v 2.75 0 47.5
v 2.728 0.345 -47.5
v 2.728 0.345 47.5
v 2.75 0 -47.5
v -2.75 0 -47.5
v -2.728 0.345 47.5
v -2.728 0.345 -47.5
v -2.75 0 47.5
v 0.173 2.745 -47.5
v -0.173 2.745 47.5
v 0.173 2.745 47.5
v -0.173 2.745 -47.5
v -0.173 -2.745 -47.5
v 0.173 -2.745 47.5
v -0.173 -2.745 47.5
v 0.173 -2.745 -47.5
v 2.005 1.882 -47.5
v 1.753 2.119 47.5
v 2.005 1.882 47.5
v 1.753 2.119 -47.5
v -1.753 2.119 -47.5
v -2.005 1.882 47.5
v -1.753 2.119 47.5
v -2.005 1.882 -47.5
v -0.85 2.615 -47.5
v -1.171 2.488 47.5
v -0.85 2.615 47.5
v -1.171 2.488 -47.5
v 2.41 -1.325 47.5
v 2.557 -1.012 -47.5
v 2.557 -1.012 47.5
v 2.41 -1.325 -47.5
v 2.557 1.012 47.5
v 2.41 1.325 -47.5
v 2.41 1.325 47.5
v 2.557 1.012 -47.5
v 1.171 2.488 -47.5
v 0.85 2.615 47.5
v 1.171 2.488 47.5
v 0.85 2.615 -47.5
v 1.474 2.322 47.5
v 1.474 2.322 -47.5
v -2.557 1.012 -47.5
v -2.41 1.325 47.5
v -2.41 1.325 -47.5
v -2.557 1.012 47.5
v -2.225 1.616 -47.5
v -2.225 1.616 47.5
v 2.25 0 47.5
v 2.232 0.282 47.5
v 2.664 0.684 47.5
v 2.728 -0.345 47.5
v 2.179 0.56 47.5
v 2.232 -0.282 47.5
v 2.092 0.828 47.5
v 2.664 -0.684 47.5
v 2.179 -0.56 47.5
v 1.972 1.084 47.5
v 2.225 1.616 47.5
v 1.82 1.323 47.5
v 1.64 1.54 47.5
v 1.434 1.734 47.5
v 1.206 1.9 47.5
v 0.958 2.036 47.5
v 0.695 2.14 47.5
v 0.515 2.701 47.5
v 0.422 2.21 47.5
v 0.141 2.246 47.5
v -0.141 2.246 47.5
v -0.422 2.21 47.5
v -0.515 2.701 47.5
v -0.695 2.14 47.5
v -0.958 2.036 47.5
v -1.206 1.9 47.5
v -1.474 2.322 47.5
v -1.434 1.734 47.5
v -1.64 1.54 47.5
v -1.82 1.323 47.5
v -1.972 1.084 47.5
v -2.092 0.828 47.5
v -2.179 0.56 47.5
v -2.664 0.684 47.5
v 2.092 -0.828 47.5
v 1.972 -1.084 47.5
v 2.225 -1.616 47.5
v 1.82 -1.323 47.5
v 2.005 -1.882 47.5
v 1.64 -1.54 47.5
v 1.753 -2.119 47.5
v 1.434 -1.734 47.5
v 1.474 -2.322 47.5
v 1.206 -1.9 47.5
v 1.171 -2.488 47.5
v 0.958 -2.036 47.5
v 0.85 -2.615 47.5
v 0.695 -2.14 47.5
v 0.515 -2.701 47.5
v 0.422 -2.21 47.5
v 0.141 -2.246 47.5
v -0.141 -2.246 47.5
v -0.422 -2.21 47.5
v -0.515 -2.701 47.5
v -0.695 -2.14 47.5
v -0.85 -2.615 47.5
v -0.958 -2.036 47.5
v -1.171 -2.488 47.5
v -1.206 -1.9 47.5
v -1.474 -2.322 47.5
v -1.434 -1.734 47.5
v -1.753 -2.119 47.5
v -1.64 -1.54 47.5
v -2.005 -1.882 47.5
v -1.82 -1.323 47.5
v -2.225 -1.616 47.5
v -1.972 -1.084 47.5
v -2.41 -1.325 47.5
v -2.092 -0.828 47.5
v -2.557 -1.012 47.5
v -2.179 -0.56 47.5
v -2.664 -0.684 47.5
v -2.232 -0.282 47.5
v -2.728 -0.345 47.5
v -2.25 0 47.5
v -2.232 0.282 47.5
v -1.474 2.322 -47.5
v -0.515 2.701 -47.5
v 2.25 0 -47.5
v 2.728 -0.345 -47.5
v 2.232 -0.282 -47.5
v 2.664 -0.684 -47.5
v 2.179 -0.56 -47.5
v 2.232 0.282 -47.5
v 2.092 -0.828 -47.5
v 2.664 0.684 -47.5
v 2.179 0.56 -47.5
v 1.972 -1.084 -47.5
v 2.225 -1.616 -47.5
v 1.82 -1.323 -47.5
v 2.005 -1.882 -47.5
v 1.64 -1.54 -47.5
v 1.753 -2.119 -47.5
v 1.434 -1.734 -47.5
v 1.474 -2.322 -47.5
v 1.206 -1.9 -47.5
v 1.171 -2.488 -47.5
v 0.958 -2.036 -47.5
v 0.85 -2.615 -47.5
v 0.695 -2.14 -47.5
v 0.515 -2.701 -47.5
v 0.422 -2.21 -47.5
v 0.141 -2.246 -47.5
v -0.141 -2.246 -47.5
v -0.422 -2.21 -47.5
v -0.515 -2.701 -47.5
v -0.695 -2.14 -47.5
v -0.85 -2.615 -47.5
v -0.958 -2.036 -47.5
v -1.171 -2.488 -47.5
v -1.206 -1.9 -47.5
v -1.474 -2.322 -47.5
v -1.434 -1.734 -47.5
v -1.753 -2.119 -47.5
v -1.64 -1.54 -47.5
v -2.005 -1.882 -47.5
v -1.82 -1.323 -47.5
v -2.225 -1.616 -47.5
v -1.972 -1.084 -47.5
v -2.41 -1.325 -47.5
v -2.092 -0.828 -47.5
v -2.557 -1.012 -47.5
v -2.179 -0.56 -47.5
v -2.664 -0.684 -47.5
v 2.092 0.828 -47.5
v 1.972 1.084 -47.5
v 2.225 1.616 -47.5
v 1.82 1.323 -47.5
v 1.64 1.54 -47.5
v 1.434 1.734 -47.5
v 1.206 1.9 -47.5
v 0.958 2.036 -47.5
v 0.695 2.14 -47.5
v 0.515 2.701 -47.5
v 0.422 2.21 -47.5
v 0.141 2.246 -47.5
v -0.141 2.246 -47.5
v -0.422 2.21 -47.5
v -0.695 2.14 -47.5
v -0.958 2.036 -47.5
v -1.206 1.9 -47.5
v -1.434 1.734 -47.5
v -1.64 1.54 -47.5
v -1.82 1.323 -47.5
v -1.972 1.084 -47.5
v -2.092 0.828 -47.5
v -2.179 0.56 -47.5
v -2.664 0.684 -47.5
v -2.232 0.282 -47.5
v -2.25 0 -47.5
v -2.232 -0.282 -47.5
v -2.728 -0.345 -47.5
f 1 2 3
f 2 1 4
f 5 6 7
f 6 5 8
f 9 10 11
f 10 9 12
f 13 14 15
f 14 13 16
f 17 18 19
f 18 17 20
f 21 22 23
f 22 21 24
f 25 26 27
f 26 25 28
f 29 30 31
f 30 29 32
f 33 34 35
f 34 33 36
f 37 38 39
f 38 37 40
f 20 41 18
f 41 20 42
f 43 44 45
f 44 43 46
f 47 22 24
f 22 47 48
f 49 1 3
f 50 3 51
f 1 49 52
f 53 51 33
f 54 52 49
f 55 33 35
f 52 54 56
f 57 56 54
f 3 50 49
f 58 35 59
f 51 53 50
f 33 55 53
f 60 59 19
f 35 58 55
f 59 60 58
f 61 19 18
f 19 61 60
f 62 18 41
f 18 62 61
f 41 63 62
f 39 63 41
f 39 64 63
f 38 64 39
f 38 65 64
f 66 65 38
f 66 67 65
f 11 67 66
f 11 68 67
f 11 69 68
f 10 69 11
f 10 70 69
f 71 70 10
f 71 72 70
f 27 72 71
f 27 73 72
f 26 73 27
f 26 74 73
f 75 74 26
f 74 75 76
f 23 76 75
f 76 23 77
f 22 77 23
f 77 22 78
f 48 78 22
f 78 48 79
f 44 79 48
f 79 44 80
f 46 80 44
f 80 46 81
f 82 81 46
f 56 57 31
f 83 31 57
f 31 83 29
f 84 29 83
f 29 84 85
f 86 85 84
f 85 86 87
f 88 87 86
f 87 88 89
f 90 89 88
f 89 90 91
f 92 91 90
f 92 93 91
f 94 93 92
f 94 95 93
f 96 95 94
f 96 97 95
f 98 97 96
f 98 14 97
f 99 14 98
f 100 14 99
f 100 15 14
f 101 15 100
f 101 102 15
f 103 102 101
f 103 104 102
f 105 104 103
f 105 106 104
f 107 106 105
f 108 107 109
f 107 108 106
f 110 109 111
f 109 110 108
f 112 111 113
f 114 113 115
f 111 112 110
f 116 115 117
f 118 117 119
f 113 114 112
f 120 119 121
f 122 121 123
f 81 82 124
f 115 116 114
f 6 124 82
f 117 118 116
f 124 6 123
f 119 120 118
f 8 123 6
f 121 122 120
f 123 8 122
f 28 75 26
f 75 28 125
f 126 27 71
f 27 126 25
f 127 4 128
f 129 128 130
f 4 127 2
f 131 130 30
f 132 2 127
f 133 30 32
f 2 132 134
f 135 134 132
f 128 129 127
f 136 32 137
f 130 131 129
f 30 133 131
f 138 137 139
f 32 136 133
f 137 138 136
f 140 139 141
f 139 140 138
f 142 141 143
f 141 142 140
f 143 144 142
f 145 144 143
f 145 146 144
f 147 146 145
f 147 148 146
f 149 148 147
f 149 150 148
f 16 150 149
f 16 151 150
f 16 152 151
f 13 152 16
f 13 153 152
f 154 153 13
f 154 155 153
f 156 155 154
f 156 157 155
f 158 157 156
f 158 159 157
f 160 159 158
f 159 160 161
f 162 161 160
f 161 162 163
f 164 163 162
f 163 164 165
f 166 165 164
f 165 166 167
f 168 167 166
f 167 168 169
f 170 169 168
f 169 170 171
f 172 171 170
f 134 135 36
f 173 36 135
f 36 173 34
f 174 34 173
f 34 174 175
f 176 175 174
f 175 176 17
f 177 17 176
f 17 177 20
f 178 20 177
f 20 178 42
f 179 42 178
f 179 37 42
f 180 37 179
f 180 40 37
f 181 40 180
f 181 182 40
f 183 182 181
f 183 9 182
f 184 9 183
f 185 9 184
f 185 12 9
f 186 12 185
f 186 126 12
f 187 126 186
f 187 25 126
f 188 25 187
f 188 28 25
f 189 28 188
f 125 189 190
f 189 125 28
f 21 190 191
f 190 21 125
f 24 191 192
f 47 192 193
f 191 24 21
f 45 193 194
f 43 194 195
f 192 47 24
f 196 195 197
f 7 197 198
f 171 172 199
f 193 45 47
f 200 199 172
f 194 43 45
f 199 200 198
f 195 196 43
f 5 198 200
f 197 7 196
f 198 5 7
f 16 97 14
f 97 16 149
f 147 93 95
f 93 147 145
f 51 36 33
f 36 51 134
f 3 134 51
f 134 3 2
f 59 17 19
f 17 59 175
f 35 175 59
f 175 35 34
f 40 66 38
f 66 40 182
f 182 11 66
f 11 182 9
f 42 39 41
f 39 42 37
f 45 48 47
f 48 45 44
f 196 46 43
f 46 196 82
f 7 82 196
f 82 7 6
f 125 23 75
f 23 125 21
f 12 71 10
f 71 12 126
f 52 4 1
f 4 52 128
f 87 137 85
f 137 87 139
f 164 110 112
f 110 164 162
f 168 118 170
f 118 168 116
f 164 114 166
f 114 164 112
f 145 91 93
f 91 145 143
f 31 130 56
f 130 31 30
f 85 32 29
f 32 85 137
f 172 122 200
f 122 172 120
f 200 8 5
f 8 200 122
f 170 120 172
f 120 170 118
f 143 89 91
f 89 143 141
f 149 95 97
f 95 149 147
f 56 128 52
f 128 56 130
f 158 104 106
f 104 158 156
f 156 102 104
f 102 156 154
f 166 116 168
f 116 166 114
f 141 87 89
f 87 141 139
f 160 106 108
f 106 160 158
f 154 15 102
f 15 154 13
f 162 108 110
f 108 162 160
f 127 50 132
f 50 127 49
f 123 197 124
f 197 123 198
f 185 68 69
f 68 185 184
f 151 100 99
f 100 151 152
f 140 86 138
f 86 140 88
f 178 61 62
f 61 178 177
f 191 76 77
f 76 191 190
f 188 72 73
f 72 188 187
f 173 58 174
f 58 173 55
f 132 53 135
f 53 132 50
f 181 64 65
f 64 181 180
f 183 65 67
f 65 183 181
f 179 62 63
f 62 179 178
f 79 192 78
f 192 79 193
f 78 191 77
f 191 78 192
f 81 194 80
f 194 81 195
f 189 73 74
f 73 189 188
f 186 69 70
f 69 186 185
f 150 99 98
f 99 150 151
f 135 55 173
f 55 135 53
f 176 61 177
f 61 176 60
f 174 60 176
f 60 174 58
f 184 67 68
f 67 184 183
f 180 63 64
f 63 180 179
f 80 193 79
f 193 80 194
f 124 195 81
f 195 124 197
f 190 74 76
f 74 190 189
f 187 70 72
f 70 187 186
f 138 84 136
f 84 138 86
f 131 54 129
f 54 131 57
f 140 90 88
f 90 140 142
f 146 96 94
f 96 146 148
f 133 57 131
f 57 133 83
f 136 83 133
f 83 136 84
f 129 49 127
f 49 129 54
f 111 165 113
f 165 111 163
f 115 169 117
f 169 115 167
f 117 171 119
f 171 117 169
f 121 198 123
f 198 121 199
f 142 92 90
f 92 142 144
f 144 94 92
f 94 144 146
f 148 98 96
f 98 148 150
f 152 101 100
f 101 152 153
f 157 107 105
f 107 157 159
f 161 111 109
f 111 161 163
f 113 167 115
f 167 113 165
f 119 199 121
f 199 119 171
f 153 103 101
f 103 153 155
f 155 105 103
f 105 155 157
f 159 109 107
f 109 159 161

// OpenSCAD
$fn = 50;


difference() {
	union() {
		translate(v = [0, 0, -47.5000000000]) {
			cylinder(h = 95, r = 2.7500000000);
		}
	}
	union() {
		translate(v = [0, 0, -100.0000000000]) {
			cylinder(h = 200, r = 2.2500000000);
		}
	}
}
